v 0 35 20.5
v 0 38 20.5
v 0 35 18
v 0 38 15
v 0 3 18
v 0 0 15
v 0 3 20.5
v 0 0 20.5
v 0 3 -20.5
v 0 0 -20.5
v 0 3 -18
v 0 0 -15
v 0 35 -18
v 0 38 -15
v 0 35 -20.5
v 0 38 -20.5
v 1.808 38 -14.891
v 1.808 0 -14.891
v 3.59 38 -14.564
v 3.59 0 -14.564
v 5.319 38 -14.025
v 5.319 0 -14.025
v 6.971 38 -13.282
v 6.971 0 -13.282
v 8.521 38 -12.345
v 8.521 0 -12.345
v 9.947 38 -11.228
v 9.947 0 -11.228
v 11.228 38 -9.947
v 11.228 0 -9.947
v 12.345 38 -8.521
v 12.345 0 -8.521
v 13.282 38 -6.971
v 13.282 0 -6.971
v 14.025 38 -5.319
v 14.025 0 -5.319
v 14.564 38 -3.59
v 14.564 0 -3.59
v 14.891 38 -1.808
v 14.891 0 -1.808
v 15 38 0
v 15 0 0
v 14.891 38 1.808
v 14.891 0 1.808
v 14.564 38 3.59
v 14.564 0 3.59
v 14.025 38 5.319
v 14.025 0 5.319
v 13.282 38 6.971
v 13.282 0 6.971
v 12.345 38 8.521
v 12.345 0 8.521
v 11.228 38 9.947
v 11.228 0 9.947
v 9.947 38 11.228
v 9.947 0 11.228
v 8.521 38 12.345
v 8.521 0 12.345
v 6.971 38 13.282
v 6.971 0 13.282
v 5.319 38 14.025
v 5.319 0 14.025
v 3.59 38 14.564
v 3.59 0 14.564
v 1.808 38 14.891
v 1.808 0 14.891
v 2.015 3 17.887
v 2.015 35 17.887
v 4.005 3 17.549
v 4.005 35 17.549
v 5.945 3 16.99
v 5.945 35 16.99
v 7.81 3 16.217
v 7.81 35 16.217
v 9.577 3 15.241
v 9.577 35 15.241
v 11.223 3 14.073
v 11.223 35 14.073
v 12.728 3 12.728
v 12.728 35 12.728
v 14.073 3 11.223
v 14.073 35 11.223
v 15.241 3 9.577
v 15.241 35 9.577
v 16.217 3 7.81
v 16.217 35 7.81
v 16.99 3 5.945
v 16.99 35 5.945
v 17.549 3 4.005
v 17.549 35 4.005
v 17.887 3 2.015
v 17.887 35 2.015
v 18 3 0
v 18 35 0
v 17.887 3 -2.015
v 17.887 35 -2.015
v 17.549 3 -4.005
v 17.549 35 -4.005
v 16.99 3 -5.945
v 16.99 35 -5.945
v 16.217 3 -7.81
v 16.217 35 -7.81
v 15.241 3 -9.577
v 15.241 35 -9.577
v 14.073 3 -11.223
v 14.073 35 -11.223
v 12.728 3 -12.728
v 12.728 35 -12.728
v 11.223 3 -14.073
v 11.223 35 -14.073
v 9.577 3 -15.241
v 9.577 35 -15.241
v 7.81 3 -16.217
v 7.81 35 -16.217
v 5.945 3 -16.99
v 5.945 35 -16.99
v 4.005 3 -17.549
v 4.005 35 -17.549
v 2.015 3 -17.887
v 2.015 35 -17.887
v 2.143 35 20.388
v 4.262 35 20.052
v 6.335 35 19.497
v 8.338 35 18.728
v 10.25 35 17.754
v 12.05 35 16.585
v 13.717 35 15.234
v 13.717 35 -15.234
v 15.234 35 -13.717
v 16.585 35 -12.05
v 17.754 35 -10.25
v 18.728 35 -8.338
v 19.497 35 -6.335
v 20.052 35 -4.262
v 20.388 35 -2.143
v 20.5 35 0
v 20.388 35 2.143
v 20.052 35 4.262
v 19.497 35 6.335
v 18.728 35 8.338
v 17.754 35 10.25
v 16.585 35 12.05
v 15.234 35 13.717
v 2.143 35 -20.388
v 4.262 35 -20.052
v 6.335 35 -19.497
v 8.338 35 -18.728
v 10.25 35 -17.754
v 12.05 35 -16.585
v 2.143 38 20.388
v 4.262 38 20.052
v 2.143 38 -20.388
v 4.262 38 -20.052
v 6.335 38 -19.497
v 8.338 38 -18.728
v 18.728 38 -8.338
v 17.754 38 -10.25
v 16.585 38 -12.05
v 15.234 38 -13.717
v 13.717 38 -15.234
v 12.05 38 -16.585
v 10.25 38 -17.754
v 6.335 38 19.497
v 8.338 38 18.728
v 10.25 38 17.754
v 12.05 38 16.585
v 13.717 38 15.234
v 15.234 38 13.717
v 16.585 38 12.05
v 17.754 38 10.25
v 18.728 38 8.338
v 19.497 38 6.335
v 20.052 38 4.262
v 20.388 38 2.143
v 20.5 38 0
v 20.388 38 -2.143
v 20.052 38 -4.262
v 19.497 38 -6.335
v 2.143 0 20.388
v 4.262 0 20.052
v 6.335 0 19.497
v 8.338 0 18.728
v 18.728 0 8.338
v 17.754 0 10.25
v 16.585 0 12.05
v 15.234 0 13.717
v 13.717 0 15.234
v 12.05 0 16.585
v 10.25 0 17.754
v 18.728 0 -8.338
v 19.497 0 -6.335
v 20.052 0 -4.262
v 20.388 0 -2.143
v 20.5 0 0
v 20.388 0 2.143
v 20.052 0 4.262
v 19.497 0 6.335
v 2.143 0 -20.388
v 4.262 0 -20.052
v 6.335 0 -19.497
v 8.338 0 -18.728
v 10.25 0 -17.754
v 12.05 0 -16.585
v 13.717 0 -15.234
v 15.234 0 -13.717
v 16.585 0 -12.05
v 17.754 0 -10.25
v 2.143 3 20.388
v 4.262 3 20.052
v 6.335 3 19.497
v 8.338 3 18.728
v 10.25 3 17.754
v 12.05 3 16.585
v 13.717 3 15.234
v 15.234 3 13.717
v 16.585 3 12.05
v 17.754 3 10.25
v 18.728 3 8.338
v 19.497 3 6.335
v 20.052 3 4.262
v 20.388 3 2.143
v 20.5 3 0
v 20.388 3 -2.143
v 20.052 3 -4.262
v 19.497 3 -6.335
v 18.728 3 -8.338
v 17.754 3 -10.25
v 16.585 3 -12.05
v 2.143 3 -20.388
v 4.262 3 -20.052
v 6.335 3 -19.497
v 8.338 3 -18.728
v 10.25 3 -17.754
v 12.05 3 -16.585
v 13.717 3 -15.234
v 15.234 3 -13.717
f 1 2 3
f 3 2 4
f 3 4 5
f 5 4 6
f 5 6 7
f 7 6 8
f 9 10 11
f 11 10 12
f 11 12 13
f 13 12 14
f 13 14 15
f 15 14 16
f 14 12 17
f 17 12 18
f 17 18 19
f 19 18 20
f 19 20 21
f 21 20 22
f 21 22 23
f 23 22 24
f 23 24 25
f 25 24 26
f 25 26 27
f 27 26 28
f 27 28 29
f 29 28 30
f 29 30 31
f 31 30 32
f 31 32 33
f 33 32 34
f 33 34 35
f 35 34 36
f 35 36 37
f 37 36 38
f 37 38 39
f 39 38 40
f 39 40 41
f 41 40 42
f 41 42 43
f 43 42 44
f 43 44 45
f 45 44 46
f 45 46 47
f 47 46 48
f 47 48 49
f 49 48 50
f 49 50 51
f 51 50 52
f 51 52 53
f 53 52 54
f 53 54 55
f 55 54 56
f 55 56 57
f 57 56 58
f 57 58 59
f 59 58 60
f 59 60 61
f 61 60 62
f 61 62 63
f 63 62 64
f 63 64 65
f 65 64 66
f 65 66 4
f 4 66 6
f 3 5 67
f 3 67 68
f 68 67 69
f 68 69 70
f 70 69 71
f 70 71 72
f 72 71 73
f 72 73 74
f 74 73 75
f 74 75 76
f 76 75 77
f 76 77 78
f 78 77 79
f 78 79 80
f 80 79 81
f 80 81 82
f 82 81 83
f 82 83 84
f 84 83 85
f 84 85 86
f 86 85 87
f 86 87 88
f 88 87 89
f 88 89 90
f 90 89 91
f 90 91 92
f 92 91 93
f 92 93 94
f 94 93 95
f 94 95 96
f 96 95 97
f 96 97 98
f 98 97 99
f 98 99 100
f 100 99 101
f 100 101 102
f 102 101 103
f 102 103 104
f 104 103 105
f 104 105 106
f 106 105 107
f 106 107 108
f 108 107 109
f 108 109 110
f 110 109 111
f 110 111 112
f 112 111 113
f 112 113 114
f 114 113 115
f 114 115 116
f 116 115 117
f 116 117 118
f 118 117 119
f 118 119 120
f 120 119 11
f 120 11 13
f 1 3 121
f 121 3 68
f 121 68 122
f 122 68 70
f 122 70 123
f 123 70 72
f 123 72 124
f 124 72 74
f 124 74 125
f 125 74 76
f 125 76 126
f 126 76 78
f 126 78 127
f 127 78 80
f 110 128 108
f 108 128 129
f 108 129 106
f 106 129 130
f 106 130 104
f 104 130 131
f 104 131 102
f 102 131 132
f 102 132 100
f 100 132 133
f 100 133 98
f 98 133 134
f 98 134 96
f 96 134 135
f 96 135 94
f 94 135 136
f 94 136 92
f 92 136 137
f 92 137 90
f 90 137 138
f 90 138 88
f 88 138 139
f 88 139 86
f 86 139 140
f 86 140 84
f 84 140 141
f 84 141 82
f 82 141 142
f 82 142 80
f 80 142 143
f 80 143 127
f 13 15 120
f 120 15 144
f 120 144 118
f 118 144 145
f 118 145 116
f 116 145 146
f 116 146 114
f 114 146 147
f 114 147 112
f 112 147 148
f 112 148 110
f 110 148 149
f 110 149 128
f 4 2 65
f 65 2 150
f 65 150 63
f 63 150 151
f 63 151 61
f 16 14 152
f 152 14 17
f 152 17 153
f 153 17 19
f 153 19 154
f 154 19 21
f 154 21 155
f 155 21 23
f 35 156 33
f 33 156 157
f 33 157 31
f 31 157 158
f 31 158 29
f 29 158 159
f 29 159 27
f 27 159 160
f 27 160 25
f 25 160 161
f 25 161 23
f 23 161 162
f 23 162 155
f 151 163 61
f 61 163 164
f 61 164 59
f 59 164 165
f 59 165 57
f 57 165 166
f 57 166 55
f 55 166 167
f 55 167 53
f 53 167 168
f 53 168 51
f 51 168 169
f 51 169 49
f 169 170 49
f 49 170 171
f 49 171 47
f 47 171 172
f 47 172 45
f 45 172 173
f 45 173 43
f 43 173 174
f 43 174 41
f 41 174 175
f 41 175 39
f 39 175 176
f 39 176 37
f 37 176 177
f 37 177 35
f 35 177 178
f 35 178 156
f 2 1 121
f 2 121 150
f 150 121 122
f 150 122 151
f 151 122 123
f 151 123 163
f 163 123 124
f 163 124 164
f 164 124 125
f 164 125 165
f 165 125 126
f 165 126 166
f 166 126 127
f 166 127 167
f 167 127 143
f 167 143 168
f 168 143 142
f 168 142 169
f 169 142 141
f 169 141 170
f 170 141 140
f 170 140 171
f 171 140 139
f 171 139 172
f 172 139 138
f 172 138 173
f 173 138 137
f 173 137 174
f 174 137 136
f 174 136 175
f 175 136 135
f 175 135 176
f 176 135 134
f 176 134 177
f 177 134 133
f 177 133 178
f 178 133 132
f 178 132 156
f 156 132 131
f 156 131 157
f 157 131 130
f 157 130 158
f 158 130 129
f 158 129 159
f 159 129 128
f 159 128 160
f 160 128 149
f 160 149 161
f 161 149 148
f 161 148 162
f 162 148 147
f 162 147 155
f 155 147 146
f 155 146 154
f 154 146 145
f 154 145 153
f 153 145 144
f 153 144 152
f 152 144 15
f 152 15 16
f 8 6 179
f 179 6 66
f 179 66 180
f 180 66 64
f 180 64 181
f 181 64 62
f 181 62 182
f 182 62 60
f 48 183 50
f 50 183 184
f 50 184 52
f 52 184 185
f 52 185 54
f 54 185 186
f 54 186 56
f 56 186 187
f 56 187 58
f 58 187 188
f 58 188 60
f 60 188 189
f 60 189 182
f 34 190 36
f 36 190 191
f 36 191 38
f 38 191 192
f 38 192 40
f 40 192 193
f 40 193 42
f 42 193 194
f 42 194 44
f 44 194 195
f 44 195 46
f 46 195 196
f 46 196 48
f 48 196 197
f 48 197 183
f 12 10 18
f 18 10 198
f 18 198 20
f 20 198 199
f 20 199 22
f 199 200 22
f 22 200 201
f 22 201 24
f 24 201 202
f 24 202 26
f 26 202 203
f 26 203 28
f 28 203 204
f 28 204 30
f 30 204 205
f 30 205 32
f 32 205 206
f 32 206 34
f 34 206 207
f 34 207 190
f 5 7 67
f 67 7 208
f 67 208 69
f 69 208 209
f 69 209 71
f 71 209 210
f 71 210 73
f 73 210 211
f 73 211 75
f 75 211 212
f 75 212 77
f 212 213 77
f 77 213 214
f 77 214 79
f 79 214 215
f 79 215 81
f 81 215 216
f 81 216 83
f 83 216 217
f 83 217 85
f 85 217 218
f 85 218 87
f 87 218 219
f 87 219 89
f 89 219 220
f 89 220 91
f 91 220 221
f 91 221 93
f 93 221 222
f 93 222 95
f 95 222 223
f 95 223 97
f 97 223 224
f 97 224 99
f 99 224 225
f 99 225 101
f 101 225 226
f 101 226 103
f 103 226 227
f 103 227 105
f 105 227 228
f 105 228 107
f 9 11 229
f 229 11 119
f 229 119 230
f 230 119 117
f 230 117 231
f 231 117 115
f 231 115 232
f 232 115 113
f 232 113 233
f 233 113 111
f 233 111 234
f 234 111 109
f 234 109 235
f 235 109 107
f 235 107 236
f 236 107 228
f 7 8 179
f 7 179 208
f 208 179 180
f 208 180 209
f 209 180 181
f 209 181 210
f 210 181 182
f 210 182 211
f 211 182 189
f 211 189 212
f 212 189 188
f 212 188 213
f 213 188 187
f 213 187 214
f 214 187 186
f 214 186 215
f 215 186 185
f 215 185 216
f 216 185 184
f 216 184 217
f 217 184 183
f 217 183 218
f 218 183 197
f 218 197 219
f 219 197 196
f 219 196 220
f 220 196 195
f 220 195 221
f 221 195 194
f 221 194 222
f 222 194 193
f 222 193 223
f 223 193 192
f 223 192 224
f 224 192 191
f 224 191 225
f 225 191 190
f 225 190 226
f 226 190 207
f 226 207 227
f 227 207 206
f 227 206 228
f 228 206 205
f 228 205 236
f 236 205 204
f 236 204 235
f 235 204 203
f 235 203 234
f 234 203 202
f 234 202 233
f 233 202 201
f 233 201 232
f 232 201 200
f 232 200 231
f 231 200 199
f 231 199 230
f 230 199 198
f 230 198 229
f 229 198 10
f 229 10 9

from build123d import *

# Parameters (mm, degrees)
SKETCH1_R           = 18
SKETCH1_R_2         = 15
BOSS_EXTRUDE1_DEPTH = 35
SKETCH2_R           = 20.5
SKETCH2_R_2         = 15
BOSS_EXTRUDE2_DEPTH = 3
SKETCH3_R           = 20.5
SKETCH3_R_2         = 15
BOSS_EXTRUDE3_DEPTH = 3
SKETCH2_2_R         = 20.5
SKETCH2_2_R_2       = 15
BOSS_EXTRUDE4_DEPTH = 3


with BuildPart() as part:
    # Sketch1 → Boss-Extrude1 (new body)
    with BuildSketch(Plane(origin=(0, 0, 0), x_dir=(1, 0, 0), z_dir=(0, 1, 0))):
        Circle(SKETCH1_R)
        Circle(SKETCH1_R_2, mode=Mode.SUBTRACT)
    extrude(amount=BOSS_EXTRUDE1_DEPTH)

    # Sketch2 → Boss-Extrude2 (add)
    with BuildSketch(Plane(origin=(0, 0, 0), x_dir=(1, 0, 0), z_dir=(0, 1, 0))):
        Circle(SKETCH2_R)
        Circle(SKETCH2_R_2, mode=Mode.SUBTRACT)
    extrude(amount=BOSS_EXTRUDE2_DEPTH)

    # Sketch3 → Boss-Extrude3 (add)
    with BuildSketch(Plane(origin=(0, 35, 0), x_dir=(1, 0, 0), z_dir=(0, 1, 0))):
        Circle(SKETCH3_R)
        Circle(SKETCH3_R_2, mode=Mode.SUBTRACT)
    extrude(amount=BOSS_EXTRUDE3_DEPTH)

    # Sketch2<2> → Boss-Extrude4 (add)
    with BuildSketch(Plane(origin=(0, 0, 0), x_dir=(1, 0, 0), z_dir=(0, 1, 0))):
        Circle(SKETCH2_2_R)
        Circle(SKETCH2_2_R_2, mode=Mode.SUBTRACT)
    extrude(amount=BOSS_EXTRUDE4_DEPTH)

    # Split1
    split(bisect_by=Plane(origin=(0, 0, 0), x_dir=(0, 0, 1), z_dir=(1, 0, 0)), keep=Keep.TOP)


solid = part.part
